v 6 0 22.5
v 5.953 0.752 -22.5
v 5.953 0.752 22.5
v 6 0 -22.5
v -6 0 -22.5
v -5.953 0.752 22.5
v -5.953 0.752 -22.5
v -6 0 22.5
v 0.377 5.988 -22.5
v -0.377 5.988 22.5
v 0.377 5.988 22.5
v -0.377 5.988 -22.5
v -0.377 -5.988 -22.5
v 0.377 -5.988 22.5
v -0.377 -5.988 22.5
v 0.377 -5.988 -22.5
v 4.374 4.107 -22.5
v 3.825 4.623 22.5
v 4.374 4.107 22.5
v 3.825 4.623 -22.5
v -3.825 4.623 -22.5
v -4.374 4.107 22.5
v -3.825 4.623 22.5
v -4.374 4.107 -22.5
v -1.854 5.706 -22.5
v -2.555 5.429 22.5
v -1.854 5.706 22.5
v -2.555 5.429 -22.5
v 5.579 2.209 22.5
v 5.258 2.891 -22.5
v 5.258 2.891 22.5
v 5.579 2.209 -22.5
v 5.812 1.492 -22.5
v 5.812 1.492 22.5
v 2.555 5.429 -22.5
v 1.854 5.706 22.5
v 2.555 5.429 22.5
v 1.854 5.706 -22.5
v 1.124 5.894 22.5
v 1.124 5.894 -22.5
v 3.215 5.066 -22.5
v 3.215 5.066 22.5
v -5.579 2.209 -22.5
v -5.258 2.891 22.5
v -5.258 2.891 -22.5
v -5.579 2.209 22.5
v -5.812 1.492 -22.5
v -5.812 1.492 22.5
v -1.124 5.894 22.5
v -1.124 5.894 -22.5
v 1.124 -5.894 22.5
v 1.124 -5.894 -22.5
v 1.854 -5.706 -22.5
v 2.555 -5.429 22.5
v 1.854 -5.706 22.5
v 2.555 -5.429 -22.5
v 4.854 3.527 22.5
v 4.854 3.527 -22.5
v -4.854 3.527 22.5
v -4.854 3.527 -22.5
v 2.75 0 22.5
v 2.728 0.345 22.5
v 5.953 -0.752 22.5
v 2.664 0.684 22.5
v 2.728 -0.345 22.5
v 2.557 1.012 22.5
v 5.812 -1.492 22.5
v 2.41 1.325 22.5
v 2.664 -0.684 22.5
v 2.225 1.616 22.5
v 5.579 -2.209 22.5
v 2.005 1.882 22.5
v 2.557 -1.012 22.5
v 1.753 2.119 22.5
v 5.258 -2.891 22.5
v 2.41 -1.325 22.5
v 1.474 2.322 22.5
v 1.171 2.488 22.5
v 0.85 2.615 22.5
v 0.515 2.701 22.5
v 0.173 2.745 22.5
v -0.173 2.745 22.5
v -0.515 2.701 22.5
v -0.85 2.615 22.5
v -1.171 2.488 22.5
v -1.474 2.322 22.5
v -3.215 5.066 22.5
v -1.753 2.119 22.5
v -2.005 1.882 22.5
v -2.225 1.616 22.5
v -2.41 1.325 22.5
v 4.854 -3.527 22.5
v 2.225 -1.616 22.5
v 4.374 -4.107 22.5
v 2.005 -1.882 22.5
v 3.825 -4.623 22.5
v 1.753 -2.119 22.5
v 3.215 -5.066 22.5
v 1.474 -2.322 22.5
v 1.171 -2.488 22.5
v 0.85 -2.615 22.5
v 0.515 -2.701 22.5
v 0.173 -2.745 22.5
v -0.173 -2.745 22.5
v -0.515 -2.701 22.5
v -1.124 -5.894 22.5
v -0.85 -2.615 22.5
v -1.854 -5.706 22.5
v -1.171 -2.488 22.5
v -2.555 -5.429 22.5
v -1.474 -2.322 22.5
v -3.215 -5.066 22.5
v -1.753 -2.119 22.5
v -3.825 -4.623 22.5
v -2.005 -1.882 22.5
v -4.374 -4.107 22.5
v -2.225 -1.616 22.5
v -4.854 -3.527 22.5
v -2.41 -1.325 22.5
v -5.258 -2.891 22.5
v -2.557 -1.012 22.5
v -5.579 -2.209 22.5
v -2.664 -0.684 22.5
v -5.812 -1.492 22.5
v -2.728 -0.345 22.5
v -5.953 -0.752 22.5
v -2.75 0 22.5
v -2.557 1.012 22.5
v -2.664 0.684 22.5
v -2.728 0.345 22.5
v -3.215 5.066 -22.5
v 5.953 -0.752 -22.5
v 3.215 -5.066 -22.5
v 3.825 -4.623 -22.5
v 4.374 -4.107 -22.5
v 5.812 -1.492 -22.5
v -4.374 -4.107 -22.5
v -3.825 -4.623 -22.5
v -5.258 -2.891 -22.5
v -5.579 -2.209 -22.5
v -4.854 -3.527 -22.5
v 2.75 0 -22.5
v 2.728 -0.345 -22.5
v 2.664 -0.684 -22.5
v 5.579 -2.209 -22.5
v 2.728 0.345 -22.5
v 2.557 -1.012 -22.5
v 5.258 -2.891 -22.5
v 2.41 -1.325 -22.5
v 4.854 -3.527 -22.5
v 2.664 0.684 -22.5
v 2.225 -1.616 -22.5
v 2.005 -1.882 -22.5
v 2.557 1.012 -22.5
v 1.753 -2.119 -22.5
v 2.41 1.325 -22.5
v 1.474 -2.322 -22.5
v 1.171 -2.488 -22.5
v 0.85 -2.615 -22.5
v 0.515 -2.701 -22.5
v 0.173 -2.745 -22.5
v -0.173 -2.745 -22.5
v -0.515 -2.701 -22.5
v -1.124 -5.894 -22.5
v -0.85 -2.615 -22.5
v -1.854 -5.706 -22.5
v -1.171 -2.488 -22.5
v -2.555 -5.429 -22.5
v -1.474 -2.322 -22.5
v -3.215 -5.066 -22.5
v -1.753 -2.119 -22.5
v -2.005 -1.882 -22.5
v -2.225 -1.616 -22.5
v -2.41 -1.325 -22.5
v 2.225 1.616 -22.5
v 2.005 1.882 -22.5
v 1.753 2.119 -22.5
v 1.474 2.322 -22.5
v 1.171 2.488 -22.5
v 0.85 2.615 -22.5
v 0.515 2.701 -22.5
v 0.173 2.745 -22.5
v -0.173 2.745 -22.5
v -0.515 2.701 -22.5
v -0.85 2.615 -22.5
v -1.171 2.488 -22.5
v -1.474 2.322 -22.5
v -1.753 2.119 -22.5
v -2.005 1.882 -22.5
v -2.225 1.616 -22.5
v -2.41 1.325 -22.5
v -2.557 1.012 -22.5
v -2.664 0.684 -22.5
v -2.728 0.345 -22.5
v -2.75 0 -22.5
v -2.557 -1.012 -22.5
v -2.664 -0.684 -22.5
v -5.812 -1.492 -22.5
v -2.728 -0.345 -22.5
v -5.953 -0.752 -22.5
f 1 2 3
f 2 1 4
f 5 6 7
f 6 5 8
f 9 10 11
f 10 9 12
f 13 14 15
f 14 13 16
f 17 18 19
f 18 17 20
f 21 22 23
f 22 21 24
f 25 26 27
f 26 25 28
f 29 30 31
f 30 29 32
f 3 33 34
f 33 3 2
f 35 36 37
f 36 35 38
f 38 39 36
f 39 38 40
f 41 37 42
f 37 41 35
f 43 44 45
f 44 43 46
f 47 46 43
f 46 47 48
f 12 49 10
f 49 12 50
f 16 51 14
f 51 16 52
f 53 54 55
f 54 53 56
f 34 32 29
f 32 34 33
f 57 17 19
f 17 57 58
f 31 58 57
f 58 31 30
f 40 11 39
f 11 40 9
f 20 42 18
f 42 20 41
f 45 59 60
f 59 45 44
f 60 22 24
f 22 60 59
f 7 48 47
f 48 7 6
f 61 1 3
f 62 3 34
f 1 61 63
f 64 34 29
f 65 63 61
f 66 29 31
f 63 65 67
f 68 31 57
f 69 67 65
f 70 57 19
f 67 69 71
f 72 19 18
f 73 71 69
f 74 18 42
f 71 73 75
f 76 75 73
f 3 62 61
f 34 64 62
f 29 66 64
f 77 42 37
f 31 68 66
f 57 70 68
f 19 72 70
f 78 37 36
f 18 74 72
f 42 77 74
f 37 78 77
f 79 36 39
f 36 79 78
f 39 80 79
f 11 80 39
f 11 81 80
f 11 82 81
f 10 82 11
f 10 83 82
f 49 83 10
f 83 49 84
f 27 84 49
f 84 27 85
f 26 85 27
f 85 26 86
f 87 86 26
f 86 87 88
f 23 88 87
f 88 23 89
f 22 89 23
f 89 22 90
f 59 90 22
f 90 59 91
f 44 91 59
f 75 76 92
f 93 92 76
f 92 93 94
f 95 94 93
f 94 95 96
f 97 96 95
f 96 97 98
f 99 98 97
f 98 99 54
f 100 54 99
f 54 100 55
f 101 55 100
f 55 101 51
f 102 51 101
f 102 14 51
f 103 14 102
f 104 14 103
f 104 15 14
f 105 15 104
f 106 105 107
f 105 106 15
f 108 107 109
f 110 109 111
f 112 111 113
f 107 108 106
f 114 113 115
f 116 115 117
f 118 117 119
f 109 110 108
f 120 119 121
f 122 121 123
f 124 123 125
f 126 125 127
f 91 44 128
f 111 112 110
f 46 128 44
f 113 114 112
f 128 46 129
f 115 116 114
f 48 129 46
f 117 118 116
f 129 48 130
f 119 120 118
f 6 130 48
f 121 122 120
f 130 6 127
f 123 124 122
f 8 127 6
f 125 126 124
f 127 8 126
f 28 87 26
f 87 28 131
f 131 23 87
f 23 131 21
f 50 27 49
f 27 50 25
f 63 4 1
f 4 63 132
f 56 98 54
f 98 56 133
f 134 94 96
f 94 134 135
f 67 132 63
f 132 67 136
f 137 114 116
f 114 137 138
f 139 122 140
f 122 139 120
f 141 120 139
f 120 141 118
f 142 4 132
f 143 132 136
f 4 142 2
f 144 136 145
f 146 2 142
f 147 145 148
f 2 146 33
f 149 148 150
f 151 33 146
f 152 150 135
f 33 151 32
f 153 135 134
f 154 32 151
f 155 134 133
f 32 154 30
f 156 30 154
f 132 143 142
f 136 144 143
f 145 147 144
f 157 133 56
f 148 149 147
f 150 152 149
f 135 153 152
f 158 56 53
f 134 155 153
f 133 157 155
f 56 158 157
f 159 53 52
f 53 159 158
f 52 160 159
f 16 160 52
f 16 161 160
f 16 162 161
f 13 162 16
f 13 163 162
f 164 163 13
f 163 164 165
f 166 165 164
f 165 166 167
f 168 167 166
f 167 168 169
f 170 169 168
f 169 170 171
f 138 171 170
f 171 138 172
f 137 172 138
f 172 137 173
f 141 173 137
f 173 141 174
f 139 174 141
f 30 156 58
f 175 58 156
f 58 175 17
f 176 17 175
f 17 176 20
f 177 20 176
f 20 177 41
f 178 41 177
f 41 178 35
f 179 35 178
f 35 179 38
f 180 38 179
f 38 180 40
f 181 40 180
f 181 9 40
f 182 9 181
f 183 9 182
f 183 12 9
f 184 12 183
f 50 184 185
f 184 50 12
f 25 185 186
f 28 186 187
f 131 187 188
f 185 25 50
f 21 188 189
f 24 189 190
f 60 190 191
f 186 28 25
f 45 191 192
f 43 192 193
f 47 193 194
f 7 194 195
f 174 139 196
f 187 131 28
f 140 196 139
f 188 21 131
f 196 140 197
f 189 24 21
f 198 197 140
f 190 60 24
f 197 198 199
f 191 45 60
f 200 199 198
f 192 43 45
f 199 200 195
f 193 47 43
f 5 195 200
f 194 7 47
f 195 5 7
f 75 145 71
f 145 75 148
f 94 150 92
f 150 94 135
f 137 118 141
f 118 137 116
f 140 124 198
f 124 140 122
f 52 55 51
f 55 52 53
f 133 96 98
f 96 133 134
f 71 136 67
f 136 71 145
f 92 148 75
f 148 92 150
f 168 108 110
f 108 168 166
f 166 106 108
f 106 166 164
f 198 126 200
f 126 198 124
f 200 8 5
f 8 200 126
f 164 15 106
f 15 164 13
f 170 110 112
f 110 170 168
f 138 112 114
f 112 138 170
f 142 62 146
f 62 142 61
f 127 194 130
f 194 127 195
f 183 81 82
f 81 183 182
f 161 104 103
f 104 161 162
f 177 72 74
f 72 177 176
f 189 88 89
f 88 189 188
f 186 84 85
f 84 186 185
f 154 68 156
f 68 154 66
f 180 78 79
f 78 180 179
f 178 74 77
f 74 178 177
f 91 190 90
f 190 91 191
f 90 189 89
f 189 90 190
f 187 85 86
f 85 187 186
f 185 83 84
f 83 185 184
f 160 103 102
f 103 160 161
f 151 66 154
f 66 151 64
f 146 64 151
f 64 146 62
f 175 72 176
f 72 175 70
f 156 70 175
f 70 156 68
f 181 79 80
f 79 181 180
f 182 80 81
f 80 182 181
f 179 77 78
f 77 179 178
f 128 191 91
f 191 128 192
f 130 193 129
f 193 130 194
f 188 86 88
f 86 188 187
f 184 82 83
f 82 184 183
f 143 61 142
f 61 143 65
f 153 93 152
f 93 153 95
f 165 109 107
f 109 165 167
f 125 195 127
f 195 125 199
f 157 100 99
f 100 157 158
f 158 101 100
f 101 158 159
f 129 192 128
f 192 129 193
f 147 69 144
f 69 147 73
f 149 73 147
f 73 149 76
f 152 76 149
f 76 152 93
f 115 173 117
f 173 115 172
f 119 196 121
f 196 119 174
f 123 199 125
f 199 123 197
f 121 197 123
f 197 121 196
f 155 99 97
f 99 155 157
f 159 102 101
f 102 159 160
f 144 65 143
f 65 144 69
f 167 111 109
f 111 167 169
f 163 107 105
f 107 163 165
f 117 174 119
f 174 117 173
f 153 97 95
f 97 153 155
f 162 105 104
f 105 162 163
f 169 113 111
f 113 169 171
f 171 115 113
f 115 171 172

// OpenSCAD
$fn = 50;


difference() {
	union() {
		translate(v = [0, 0, -22.5000000000]) {
			cylinder(h = 45, r = 6.0000000000);
		}
	}
	union() {
		translate(v = [0, 0, -100.0000000000]) {
			cylinder(h = 200, r = 2.7500000000);
		}
	}
}
